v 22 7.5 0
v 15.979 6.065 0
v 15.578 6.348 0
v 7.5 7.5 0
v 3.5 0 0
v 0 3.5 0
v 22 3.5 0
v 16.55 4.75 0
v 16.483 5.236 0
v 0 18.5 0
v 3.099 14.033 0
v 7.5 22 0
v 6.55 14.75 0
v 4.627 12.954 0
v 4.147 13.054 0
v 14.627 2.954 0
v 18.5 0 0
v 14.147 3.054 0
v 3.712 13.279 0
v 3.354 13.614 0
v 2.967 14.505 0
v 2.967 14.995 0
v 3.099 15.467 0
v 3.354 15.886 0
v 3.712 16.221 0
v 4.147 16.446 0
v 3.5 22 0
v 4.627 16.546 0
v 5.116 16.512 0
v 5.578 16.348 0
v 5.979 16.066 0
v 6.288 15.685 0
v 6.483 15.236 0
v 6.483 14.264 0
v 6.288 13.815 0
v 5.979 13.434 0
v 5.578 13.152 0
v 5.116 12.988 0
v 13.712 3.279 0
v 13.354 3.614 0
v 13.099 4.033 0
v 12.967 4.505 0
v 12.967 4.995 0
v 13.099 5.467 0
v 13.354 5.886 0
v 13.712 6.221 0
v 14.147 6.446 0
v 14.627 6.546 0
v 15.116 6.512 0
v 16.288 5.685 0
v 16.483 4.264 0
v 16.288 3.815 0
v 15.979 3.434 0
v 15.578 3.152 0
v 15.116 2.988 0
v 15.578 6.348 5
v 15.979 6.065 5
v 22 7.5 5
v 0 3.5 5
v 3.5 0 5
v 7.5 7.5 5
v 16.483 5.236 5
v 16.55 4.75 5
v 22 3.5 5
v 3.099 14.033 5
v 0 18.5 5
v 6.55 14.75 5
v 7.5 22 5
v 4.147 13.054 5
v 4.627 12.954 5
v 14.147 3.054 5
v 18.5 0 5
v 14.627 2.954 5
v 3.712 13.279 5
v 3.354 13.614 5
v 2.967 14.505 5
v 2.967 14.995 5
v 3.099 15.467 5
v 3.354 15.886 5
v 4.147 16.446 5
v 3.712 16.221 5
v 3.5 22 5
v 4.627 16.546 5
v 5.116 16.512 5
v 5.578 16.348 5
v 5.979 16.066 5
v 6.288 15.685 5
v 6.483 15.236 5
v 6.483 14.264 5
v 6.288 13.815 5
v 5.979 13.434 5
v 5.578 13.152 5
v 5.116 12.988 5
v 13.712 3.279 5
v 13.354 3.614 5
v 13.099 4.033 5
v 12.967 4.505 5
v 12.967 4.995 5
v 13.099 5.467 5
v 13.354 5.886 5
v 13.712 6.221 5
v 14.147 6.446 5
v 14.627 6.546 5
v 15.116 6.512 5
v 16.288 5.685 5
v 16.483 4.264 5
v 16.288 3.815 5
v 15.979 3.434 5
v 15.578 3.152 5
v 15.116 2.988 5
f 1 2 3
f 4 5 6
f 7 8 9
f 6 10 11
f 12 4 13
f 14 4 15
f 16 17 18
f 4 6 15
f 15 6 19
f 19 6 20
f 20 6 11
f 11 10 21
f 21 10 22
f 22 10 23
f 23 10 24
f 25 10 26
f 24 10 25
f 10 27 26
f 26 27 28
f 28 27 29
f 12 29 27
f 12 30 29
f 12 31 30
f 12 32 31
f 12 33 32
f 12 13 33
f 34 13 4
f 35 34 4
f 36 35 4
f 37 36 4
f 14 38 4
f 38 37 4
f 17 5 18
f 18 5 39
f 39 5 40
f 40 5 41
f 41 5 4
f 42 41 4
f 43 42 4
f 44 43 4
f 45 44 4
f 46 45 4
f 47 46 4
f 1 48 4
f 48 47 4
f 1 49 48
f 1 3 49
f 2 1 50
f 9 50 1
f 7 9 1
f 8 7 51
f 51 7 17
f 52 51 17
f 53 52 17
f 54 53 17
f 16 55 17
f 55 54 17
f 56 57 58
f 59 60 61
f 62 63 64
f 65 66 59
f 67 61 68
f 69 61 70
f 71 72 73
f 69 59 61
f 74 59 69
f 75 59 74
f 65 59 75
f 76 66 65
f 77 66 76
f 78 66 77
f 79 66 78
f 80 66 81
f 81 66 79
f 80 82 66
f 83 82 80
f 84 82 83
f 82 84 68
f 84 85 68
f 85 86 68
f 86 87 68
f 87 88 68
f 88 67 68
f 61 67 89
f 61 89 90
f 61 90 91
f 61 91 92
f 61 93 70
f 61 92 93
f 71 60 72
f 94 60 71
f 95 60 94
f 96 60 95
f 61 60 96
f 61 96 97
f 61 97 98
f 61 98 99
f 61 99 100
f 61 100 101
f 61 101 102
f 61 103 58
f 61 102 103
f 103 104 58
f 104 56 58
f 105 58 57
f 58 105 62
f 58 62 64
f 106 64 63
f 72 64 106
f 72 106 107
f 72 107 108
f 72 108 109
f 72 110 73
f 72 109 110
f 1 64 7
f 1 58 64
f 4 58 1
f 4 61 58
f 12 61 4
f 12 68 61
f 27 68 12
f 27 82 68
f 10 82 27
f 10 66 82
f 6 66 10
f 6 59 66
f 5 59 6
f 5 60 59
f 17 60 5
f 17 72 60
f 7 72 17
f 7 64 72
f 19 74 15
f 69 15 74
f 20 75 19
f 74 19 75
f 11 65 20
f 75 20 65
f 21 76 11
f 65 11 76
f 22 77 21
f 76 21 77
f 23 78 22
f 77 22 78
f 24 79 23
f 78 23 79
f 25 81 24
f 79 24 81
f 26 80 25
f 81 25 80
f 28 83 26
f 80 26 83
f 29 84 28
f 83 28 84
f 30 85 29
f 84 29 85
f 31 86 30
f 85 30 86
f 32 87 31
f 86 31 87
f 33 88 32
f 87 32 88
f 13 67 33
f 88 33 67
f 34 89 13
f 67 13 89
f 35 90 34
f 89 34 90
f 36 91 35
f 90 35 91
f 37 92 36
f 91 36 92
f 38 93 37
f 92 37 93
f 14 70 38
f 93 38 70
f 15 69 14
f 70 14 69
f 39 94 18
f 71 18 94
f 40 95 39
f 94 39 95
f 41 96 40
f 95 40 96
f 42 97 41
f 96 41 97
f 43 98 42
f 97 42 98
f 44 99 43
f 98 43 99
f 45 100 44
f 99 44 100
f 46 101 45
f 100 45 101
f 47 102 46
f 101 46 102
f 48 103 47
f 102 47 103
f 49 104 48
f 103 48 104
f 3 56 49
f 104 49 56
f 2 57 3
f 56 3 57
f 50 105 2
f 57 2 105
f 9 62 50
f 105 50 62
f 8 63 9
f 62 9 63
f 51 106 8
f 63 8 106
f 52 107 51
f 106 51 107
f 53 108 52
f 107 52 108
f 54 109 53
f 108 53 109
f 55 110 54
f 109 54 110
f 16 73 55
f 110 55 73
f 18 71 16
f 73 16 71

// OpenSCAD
// M2 bed spacers for rubber pads
//
// Copyright (C) 2020  Kevin O'Connor <kevin@koconnor.net>
//
// This file may be distributed under the terms of the GNU GPLv3 license.

// Misc measurements:
//   - Glass plate is 4mm thick.
//   - Aluminum heat spreader is 3mm thick.
//   - Cork board is 2mm thick.
//   - L-shaped rubber is 4mm thick.
//   - Bottom rubber is 3mm thick.

// Spacer external dimensions
bigx=22;
bigy=22;
cutx=14.5;
cuty=14.5;
cornershort=3.5;
height = 5.0;

// Screw location and size
screwx=14.75;
screwy=4.75;
screwr=1.8;

$fs = .5;

module spacer() {
    module lrubber() {
        polygon([[0, cornershort], [cornershort, 0],
                 [bigx-cornershort, 0], [bigx, cornershort],

                 [bigx, bigy-cuty], [bigx-cutx, bigy-cuty], [bigx-cutx, bigy],

                 [cornershort, bigy], [0, bigy-cornershort] ]);
    }

    module lrubberwithholes() {
        difference() {
            lrubber();
            translate([screwx, screwy])
                circle(r=screwr);
            translate([screwy, screwx])
                circle(r=screwr);
        }
    }

    linear_extrude(height = height)
        lrubberwithholes();
}

spacer();
